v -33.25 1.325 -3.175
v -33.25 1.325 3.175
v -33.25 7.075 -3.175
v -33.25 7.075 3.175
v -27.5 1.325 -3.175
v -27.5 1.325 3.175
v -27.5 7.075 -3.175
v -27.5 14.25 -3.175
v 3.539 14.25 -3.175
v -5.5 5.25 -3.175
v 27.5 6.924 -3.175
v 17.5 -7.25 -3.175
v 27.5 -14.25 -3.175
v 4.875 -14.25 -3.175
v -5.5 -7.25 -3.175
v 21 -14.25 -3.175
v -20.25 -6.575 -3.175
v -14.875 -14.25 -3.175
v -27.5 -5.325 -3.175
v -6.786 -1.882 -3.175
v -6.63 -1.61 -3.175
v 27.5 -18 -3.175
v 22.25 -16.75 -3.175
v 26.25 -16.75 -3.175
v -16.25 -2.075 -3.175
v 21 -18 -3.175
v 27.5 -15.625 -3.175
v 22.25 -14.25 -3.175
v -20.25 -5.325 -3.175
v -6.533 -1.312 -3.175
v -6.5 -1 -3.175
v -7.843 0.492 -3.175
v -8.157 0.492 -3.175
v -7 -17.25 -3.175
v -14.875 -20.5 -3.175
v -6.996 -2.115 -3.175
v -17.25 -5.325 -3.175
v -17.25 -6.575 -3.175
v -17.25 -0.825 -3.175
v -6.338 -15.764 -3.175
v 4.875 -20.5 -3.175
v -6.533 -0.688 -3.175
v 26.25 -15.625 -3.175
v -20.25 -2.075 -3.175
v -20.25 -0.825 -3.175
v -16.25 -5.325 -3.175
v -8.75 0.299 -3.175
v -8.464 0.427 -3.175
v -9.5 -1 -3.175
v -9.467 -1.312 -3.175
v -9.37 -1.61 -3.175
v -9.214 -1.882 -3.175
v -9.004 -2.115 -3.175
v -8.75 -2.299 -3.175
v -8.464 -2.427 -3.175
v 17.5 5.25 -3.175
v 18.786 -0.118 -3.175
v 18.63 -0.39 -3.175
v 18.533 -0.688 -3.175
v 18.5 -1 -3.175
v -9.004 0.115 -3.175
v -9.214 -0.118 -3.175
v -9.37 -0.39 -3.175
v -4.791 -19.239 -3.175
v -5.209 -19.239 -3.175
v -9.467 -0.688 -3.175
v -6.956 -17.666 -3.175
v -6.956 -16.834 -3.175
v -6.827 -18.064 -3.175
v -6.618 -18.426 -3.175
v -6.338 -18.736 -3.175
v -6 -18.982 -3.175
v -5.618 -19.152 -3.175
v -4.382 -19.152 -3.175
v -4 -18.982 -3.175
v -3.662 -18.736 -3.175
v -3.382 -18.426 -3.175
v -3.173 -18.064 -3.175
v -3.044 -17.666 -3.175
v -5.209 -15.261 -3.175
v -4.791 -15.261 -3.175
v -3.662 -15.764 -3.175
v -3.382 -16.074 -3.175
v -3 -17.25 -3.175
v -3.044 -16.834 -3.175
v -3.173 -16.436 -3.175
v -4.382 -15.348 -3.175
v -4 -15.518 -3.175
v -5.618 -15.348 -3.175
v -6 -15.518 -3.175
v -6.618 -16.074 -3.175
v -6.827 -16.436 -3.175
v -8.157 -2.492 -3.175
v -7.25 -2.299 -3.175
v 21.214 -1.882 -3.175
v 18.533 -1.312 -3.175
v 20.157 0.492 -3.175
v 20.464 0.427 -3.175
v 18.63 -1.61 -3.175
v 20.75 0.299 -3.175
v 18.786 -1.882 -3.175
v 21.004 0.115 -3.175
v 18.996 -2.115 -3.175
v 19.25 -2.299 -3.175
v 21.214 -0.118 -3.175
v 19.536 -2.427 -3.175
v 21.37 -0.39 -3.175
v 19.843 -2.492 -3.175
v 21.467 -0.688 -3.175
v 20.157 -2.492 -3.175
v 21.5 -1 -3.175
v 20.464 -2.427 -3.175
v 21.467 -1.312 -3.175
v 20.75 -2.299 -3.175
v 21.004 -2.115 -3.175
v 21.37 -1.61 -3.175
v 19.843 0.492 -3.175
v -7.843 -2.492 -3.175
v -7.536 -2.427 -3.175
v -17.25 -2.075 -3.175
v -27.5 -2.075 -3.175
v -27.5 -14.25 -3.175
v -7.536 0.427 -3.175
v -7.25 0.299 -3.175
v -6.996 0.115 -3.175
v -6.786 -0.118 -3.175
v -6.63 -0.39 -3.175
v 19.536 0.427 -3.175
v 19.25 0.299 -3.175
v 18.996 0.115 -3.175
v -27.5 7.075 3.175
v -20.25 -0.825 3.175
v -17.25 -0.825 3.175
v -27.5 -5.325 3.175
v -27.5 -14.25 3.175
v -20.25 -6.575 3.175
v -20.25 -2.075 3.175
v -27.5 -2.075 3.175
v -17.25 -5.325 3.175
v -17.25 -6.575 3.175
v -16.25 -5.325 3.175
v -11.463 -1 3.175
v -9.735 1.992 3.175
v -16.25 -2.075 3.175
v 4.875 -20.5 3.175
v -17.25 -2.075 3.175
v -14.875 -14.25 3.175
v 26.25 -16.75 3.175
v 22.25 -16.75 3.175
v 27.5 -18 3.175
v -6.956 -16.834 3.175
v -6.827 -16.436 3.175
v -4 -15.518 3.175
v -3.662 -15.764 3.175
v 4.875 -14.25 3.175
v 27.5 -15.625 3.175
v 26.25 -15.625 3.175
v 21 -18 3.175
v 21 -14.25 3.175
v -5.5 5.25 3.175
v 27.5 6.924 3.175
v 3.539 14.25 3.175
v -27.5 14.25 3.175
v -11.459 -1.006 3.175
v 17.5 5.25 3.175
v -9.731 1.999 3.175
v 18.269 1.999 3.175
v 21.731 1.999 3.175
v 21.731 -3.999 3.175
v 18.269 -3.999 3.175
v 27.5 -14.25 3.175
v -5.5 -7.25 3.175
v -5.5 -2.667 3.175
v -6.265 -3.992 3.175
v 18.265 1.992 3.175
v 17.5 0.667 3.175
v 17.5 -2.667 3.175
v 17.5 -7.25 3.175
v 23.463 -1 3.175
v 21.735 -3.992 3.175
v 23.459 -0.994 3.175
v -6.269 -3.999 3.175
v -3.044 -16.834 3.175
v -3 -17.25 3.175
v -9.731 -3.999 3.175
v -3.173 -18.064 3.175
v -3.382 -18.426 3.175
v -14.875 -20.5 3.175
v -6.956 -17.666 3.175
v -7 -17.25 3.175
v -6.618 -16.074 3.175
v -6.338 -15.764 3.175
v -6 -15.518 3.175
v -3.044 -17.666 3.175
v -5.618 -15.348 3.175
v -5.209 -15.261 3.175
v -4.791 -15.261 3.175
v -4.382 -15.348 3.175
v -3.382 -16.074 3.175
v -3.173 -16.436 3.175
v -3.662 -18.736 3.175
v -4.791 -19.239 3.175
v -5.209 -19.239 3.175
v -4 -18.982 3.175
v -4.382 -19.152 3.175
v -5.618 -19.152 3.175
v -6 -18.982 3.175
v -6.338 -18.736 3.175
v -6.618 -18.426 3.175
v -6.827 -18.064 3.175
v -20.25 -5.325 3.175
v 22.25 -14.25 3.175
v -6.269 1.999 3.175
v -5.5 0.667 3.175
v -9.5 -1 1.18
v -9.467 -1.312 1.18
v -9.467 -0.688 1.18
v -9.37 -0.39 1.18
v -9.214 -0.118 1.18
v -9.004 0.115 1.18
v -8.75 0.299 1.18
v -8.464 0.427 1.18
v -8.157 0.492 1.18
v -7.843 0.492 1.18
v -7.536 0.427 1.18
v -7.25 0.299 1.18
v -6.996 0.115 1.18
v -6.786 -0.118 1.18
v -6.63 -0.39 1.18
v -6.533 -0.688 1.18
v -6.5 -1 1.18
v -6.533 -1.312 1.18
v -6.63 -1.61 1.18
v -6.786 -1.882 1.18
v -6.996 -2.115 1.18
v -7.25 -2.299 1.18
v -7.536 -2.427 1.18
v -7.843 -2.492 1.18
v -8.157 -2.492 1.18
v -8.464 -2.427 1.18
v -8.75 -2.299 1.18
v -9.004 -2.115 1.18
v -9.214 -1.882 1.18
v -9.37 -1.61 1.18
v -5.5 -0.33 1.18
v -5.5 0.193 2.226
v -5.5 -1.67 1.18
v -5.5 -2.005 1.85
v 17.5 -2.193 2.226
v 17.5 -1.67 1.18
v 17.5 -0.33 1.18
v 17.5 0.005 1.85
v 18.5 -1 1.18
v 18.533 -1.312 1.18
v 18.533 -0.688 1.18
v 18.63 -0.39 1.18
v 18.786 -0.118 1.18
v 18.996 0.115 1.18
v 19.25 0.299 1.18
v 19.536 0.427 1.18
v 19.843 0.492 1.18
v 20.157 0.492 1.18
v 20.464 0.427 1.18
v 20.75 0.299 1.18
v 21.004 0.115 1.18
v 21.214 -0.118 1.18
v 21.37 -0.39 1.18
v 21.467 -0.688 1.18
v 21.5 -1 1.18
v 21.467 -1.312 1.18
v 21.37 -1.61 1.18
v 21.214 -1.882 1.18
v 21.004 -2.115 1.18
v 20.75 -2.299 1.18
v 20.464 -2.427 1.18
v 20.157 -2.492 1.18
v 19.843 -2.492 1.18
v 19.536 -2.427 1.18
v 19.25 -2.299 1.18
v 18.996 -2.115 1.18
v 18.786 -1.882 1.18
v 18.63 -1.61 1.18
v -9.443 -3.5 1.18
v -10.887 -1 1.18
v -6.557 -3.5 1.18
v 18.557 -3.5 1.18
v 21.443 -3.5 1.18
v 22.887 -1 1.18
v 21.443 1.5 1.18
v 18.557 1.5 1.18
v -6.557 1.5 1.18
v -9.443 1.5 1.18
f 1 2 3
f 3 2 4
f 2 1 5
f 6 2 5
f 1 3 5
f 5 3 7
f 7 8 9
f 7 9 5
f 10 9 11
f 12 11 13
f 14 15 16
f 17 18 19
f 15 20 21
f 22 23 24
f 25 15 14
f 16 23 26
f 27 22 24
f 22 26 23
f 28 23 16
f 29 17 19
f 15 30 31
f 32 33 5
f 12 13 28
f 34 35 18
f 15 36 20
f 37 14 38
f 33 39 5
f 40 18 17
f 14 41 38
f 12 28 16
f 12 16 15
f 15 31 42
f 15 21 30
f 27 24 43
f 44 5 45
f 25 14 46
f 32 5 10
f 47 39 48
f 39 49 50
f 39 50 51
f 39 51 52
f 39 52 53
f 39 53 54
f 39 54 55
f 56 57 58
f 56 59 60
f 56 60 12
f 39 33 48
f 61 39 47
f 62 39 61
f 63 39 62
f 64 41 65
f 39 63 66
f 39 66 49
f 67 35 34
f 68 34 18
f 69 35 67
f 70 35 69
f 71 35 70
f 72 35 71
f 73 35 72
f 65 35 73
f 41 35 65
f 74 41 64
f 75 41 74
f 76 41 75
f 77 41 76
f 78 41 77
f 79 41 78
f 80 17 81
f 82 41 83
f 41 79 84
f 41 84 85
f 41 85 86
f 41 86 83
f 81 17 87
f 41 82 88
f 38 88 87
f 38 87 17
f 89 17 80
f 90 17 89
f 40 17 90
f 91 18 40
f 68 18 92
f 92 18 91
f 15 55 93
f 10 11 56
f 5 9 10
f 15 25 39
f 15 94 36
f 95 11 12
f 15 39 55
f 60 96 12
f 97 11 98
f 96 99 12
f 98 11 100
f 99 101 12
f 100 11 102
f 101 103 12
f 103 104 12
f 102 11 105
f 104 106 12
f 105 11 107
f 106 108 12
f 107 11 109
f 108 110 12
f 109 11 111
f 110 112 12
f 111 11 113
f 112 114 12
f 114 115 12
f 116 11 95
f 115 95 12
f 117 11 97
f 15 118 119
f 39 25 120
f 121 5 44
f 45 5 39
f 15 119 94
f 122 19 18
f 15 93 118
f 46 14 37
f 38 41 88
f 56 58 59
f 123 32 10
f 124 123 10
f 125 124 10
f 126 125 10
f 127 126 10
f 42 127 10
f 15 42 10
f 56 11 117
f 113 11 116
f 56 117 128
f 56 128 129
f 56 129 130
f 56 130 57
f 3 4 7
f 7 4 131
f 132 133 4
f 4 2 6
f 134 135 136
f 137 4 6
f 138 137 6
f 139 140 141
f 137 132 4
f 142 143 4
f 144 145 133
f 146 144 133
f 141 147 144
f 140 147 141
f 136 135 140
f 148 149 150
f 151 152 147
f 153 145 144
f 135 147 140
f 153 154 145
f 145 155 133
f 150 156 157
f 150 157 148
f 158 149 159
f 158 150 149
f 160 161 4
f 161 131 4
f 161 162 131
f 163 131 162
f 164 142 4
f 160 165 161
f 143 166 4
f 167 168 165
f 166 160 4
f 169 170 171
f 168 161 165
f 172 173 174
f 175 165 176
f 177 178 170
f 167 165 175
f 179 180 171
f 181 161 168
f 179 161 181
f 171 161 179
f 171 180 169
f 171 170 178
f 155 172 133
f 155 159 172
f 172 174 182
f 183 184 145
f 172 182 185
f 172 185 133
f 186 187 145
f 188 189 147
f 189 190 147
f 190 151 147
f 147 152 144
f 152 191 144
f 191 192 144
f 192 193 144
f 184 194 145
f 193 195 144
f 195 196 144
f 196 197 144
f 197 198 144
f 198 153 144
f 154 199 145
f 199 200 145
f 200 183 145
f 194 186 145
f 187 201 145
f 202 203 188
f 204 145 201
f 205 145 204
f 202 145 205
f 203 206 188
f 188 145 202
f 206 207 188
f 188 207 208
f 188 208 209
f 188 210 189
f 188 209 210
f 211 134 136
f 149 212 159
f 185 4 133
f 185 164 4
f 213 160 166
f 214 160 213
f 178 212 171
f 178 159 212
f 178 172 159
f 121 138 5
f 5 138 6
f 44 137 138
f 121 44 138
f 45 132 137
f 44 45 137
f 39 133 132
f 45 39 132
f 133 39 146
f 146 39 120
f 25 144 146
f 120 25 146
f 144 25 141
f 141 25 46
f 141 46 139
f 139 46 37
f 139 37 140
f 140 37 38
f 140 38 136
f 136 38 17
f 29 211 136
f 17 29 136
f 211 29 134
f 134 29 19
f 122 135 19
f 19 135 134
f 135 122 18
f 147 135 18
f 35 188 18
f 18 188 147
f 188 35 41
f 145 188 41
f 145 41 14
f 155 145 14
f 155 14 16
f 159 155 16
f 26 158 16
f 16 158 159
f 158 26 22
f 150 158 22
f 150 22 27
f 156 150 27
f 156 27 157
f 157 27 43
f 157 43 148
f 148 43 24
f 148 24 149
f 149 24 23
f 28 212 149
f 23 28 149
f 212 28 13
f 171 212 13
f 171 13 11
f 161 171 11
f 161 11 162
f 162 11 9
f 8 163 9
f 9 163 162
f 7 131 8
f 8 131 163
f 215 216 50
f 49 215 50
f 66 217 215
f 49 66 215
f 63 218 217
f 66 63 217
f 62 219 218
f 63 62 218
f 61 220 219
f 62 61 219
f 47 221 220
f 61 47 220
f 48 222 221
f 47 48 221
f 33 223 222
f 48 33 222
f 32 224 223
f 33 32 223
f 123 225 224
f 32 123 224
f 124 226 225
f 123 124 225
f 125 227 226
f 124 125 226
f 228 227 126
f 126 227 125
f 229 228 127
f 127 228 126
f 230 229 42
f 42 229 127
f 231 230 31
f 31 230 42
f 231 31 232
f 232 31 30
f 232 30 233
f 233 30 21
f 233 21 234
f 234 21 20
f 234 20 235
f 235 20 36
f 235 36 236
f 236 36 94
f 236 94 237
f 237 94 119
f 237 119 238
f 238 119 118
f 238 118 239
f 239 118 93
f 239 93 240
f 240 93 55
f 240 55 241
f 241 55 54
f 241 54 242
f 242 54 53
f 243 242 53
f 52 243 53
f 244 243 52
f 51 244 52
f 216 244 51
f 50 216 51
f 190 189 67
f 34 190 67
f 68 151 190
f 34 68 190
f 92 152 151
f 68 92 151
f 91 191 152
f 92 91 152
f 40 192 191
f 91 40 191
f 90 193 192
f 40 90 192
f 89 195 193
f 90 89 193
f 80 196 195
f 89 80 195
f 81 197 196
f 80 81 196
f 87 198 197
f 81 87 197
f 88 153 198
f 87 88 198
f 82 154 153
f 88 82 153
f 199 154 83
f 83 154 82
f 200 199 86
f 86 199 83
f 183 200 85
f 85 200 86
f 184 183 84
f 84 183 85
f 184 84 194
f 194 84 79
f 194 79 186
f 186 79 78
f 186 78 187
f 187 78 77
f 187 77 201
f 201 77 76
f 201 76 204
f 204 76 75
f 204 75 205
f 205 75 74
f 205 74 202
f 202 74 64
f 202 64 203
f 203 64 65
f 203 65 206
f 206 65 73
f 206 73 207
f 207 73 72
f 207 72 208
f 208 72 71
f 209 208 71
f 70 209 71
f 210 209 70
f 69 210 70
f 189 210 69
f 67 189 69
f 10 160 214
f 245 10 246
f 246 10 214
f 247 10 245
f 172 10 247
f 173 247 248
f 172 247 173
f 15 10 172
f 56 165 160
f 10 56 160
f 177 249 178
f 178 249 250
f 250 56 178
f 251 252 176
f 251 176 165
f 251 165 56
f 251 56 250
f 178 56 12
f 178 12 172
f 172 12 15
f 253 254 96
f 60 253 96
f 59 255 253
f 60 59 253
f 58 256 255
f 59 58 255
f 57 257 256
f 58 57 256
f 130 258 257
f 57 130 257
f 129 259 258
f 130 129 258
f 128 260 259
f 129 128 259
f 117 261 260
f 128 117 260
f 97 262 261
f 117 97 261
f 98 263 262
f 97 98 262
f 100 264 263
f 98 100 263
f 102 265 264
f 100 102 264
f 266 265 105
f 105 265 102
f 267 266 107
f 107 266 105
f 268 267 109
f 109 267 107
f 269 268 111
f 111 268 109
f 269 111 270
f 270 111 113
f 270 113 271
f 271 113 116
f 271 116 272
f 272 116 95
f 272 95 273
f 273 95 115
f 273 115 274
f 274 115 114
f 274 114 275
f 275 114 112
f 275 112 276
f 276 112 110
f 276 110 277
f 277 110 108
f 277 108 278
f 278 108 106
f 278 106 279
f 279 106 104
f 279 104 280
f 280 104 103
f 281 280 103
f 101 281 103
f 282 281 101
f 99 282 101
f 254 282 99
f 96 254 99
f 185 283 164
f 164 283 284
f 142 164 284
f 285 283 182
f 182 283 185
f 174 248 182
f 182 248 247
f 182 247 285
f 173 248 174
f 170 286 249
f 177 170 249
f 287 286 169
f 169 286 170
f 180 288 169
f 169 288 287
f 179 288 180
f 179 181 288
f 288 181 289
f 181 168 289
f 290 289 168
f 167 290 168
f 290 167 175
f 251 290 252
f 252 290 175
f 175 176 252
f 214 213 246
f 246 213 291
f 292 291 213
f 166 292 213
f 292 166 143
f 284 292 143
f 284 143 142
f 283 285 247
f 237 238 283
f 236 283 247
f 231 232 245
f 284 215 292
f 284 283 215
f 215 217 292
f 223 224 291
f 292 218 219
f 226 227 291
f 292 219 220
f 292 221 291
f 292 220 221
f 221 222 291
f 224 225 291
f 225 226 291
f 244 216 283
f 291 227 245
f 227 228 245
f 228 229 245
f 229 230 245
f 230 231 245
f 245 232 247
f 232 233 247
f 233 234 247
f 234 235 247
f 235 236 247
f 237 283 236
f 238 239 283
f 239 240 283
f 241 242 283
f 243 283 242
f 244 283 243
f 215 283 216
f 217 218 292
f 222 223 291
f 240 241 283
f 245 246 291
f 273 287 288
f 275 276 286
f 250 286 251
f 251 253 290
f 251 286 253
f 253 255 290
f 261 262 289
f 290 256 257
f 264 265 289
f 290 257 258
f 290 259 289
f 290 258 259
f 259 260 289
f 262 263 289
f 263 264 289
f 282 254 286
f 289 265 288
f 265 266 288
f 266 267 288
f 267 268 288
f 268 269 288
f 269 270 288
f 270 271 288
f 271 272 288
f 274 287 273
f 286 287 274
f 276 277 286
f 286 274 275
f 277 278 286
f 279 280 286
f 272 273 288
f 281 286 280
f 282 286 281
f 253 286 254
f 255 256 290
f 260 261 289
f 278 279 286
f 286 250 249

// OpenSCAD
// Mount for a servo for autoleveling on the Makerfarm Prusa i3v:
// Original by Zennmaster
// Updated for i3v by VoltaicLoki

// added nut cutouts for the back side
// added a chord tie for the servo cord
// added a nut trap for fitting with the i3v
// moved the back tab to make it alight with i3v
// change the size of various parts to make them fit more snugly with the i3v

// add cutouts for the m2.5 nuts
nut_cutouts = true;
// add the cable holder
cord_tie = true;

servo_width=23;  // Width of cutout for servo.
servo_height=12.5; // Height of cutout for servo. 
servo_bolt_size=3; // Diameter of bolt shaft


difference() {
rotate([90,0,0]) // Lay it down for printing:
union(){
difference(){

	mainblock();
	translate([6,0,1]) servo_hole();
	translate([-22,0,3.7])	nut_trap();
}
}
	// nut cut outs
	if (nut_cutouts == true){
		translate([-11.5,-4.5,4.18]) screw_hole(); //z=4.175
		translate([16.5,-4.5,4.18]) screw_hole(); //z=4.175
	}
}
	

module mainblock() { //Set up the "blank" part:
  difference() {
    block();
    rotate([90,0,0])
    translate([-5,17.25,0])
      cylinder (h=10,r=2, $fn=30, center = true);
    translate([28,0,-12])
    rotate([0,-17,0])
      cube([50,15,10],true);
  }
}
module block(){
	// Top tab:
	translate([-5,0,17.25]) cube ([19.75,6.35,6.5], true);
	// Cord Tie
	if (cord_tie == true) {
		difference() {
			translate([24.25,0,15.25]) cube([6.5,6.35,5.5], true);
			translate([24.25,0,15.25]) cube([4,6.35,3], true);
			translate([27.25,0,14.75]) cube([2,6.35,1.75], true);	
		}
	}
	// Main body:
	cube([55,6.35,28.5], true);
	// Back tab:
	translate([-30.25,0,-4.2]) cube([6,6.35,5.75], true);
}

module servo_hole(){ // Make the opening for the servo.  Adjust the variables above to fit your part.
cube([servo_width,10,servo_height], true);
translate([servo_width/2 + servo_bolt_size/2 +1,0,0])
rotate([90,0,0])
cylinder (h=10,r=servo_bolt_size/2, $fn=30, center = true);
translate([-servo_width/2 - servo_bolt_size/2-1,0,0])
rotate([90,0,0])
cylinder (h=10,r=servo_bolt_size/2, $fn=30, center = true);
}

module nut_trap(){
		rotate([90,0,0]) cube([11.5,3.25,6.5], true);
		rotate([90,0,0]) translate([3.25,0,0]) cube([3,5.75,6.5], true);
}

module screw_hole() {
// File: 3d_print_screw_hole_test.scad
// Author: Mark Heywood alias Airtripper
// Airtripper Extruder Filament Force Sensor Bracket
// by Airtripper May 2013
// Copyright � 2013 Airtripper
// http://www.airtripper.com
// Licensed Attribution-NonCommercial-ShareAlike 3.0 Unported. 
// Last edit: 26/09/2013

/* [Global] */
//  - Select part to view/print from list
view_part = 0;	// [0:design, 1:head_up, 2:head_down, 3:horizontal]

//  - Screw head diameter - flat side to flat side on hex nut or bolt head
head = 5;		
//  - Screw head type - [6] for hex head and [50] or more for round head
type = 6;			
//  - Screw size diameter
size = 2.5;		
//  - Screw size diameter smoothness
smoothness = 50;	
//  - Screw size length - not including screw head
length = 0;			
//  - Screw head length
cap = 2;			
//  - Block border thickness between screw head and block edge
border = 1;			
//  - Print layer thickness - only required for head down print
layer = 0.25;	

    	translate([border+(head/2),border+(head/2),-1-layer]) cylinder(length+1, r=size/2, $fn=smoothness, center=true);	// screw size
		translate([border+(head/2),border+(head/2),length]) cylinder(cap+1, r=head/2, $fn=type, center=true);	// screw head/cap
		translate([border+(head/2),border+(head/2),length+cap-4]) color("red") cylinder(2, r1=(head/2)/cos(180/type), r2=((head/2)+.5)/cos(180/type), $fn=type, center=true); // screw head/cap taper

}
